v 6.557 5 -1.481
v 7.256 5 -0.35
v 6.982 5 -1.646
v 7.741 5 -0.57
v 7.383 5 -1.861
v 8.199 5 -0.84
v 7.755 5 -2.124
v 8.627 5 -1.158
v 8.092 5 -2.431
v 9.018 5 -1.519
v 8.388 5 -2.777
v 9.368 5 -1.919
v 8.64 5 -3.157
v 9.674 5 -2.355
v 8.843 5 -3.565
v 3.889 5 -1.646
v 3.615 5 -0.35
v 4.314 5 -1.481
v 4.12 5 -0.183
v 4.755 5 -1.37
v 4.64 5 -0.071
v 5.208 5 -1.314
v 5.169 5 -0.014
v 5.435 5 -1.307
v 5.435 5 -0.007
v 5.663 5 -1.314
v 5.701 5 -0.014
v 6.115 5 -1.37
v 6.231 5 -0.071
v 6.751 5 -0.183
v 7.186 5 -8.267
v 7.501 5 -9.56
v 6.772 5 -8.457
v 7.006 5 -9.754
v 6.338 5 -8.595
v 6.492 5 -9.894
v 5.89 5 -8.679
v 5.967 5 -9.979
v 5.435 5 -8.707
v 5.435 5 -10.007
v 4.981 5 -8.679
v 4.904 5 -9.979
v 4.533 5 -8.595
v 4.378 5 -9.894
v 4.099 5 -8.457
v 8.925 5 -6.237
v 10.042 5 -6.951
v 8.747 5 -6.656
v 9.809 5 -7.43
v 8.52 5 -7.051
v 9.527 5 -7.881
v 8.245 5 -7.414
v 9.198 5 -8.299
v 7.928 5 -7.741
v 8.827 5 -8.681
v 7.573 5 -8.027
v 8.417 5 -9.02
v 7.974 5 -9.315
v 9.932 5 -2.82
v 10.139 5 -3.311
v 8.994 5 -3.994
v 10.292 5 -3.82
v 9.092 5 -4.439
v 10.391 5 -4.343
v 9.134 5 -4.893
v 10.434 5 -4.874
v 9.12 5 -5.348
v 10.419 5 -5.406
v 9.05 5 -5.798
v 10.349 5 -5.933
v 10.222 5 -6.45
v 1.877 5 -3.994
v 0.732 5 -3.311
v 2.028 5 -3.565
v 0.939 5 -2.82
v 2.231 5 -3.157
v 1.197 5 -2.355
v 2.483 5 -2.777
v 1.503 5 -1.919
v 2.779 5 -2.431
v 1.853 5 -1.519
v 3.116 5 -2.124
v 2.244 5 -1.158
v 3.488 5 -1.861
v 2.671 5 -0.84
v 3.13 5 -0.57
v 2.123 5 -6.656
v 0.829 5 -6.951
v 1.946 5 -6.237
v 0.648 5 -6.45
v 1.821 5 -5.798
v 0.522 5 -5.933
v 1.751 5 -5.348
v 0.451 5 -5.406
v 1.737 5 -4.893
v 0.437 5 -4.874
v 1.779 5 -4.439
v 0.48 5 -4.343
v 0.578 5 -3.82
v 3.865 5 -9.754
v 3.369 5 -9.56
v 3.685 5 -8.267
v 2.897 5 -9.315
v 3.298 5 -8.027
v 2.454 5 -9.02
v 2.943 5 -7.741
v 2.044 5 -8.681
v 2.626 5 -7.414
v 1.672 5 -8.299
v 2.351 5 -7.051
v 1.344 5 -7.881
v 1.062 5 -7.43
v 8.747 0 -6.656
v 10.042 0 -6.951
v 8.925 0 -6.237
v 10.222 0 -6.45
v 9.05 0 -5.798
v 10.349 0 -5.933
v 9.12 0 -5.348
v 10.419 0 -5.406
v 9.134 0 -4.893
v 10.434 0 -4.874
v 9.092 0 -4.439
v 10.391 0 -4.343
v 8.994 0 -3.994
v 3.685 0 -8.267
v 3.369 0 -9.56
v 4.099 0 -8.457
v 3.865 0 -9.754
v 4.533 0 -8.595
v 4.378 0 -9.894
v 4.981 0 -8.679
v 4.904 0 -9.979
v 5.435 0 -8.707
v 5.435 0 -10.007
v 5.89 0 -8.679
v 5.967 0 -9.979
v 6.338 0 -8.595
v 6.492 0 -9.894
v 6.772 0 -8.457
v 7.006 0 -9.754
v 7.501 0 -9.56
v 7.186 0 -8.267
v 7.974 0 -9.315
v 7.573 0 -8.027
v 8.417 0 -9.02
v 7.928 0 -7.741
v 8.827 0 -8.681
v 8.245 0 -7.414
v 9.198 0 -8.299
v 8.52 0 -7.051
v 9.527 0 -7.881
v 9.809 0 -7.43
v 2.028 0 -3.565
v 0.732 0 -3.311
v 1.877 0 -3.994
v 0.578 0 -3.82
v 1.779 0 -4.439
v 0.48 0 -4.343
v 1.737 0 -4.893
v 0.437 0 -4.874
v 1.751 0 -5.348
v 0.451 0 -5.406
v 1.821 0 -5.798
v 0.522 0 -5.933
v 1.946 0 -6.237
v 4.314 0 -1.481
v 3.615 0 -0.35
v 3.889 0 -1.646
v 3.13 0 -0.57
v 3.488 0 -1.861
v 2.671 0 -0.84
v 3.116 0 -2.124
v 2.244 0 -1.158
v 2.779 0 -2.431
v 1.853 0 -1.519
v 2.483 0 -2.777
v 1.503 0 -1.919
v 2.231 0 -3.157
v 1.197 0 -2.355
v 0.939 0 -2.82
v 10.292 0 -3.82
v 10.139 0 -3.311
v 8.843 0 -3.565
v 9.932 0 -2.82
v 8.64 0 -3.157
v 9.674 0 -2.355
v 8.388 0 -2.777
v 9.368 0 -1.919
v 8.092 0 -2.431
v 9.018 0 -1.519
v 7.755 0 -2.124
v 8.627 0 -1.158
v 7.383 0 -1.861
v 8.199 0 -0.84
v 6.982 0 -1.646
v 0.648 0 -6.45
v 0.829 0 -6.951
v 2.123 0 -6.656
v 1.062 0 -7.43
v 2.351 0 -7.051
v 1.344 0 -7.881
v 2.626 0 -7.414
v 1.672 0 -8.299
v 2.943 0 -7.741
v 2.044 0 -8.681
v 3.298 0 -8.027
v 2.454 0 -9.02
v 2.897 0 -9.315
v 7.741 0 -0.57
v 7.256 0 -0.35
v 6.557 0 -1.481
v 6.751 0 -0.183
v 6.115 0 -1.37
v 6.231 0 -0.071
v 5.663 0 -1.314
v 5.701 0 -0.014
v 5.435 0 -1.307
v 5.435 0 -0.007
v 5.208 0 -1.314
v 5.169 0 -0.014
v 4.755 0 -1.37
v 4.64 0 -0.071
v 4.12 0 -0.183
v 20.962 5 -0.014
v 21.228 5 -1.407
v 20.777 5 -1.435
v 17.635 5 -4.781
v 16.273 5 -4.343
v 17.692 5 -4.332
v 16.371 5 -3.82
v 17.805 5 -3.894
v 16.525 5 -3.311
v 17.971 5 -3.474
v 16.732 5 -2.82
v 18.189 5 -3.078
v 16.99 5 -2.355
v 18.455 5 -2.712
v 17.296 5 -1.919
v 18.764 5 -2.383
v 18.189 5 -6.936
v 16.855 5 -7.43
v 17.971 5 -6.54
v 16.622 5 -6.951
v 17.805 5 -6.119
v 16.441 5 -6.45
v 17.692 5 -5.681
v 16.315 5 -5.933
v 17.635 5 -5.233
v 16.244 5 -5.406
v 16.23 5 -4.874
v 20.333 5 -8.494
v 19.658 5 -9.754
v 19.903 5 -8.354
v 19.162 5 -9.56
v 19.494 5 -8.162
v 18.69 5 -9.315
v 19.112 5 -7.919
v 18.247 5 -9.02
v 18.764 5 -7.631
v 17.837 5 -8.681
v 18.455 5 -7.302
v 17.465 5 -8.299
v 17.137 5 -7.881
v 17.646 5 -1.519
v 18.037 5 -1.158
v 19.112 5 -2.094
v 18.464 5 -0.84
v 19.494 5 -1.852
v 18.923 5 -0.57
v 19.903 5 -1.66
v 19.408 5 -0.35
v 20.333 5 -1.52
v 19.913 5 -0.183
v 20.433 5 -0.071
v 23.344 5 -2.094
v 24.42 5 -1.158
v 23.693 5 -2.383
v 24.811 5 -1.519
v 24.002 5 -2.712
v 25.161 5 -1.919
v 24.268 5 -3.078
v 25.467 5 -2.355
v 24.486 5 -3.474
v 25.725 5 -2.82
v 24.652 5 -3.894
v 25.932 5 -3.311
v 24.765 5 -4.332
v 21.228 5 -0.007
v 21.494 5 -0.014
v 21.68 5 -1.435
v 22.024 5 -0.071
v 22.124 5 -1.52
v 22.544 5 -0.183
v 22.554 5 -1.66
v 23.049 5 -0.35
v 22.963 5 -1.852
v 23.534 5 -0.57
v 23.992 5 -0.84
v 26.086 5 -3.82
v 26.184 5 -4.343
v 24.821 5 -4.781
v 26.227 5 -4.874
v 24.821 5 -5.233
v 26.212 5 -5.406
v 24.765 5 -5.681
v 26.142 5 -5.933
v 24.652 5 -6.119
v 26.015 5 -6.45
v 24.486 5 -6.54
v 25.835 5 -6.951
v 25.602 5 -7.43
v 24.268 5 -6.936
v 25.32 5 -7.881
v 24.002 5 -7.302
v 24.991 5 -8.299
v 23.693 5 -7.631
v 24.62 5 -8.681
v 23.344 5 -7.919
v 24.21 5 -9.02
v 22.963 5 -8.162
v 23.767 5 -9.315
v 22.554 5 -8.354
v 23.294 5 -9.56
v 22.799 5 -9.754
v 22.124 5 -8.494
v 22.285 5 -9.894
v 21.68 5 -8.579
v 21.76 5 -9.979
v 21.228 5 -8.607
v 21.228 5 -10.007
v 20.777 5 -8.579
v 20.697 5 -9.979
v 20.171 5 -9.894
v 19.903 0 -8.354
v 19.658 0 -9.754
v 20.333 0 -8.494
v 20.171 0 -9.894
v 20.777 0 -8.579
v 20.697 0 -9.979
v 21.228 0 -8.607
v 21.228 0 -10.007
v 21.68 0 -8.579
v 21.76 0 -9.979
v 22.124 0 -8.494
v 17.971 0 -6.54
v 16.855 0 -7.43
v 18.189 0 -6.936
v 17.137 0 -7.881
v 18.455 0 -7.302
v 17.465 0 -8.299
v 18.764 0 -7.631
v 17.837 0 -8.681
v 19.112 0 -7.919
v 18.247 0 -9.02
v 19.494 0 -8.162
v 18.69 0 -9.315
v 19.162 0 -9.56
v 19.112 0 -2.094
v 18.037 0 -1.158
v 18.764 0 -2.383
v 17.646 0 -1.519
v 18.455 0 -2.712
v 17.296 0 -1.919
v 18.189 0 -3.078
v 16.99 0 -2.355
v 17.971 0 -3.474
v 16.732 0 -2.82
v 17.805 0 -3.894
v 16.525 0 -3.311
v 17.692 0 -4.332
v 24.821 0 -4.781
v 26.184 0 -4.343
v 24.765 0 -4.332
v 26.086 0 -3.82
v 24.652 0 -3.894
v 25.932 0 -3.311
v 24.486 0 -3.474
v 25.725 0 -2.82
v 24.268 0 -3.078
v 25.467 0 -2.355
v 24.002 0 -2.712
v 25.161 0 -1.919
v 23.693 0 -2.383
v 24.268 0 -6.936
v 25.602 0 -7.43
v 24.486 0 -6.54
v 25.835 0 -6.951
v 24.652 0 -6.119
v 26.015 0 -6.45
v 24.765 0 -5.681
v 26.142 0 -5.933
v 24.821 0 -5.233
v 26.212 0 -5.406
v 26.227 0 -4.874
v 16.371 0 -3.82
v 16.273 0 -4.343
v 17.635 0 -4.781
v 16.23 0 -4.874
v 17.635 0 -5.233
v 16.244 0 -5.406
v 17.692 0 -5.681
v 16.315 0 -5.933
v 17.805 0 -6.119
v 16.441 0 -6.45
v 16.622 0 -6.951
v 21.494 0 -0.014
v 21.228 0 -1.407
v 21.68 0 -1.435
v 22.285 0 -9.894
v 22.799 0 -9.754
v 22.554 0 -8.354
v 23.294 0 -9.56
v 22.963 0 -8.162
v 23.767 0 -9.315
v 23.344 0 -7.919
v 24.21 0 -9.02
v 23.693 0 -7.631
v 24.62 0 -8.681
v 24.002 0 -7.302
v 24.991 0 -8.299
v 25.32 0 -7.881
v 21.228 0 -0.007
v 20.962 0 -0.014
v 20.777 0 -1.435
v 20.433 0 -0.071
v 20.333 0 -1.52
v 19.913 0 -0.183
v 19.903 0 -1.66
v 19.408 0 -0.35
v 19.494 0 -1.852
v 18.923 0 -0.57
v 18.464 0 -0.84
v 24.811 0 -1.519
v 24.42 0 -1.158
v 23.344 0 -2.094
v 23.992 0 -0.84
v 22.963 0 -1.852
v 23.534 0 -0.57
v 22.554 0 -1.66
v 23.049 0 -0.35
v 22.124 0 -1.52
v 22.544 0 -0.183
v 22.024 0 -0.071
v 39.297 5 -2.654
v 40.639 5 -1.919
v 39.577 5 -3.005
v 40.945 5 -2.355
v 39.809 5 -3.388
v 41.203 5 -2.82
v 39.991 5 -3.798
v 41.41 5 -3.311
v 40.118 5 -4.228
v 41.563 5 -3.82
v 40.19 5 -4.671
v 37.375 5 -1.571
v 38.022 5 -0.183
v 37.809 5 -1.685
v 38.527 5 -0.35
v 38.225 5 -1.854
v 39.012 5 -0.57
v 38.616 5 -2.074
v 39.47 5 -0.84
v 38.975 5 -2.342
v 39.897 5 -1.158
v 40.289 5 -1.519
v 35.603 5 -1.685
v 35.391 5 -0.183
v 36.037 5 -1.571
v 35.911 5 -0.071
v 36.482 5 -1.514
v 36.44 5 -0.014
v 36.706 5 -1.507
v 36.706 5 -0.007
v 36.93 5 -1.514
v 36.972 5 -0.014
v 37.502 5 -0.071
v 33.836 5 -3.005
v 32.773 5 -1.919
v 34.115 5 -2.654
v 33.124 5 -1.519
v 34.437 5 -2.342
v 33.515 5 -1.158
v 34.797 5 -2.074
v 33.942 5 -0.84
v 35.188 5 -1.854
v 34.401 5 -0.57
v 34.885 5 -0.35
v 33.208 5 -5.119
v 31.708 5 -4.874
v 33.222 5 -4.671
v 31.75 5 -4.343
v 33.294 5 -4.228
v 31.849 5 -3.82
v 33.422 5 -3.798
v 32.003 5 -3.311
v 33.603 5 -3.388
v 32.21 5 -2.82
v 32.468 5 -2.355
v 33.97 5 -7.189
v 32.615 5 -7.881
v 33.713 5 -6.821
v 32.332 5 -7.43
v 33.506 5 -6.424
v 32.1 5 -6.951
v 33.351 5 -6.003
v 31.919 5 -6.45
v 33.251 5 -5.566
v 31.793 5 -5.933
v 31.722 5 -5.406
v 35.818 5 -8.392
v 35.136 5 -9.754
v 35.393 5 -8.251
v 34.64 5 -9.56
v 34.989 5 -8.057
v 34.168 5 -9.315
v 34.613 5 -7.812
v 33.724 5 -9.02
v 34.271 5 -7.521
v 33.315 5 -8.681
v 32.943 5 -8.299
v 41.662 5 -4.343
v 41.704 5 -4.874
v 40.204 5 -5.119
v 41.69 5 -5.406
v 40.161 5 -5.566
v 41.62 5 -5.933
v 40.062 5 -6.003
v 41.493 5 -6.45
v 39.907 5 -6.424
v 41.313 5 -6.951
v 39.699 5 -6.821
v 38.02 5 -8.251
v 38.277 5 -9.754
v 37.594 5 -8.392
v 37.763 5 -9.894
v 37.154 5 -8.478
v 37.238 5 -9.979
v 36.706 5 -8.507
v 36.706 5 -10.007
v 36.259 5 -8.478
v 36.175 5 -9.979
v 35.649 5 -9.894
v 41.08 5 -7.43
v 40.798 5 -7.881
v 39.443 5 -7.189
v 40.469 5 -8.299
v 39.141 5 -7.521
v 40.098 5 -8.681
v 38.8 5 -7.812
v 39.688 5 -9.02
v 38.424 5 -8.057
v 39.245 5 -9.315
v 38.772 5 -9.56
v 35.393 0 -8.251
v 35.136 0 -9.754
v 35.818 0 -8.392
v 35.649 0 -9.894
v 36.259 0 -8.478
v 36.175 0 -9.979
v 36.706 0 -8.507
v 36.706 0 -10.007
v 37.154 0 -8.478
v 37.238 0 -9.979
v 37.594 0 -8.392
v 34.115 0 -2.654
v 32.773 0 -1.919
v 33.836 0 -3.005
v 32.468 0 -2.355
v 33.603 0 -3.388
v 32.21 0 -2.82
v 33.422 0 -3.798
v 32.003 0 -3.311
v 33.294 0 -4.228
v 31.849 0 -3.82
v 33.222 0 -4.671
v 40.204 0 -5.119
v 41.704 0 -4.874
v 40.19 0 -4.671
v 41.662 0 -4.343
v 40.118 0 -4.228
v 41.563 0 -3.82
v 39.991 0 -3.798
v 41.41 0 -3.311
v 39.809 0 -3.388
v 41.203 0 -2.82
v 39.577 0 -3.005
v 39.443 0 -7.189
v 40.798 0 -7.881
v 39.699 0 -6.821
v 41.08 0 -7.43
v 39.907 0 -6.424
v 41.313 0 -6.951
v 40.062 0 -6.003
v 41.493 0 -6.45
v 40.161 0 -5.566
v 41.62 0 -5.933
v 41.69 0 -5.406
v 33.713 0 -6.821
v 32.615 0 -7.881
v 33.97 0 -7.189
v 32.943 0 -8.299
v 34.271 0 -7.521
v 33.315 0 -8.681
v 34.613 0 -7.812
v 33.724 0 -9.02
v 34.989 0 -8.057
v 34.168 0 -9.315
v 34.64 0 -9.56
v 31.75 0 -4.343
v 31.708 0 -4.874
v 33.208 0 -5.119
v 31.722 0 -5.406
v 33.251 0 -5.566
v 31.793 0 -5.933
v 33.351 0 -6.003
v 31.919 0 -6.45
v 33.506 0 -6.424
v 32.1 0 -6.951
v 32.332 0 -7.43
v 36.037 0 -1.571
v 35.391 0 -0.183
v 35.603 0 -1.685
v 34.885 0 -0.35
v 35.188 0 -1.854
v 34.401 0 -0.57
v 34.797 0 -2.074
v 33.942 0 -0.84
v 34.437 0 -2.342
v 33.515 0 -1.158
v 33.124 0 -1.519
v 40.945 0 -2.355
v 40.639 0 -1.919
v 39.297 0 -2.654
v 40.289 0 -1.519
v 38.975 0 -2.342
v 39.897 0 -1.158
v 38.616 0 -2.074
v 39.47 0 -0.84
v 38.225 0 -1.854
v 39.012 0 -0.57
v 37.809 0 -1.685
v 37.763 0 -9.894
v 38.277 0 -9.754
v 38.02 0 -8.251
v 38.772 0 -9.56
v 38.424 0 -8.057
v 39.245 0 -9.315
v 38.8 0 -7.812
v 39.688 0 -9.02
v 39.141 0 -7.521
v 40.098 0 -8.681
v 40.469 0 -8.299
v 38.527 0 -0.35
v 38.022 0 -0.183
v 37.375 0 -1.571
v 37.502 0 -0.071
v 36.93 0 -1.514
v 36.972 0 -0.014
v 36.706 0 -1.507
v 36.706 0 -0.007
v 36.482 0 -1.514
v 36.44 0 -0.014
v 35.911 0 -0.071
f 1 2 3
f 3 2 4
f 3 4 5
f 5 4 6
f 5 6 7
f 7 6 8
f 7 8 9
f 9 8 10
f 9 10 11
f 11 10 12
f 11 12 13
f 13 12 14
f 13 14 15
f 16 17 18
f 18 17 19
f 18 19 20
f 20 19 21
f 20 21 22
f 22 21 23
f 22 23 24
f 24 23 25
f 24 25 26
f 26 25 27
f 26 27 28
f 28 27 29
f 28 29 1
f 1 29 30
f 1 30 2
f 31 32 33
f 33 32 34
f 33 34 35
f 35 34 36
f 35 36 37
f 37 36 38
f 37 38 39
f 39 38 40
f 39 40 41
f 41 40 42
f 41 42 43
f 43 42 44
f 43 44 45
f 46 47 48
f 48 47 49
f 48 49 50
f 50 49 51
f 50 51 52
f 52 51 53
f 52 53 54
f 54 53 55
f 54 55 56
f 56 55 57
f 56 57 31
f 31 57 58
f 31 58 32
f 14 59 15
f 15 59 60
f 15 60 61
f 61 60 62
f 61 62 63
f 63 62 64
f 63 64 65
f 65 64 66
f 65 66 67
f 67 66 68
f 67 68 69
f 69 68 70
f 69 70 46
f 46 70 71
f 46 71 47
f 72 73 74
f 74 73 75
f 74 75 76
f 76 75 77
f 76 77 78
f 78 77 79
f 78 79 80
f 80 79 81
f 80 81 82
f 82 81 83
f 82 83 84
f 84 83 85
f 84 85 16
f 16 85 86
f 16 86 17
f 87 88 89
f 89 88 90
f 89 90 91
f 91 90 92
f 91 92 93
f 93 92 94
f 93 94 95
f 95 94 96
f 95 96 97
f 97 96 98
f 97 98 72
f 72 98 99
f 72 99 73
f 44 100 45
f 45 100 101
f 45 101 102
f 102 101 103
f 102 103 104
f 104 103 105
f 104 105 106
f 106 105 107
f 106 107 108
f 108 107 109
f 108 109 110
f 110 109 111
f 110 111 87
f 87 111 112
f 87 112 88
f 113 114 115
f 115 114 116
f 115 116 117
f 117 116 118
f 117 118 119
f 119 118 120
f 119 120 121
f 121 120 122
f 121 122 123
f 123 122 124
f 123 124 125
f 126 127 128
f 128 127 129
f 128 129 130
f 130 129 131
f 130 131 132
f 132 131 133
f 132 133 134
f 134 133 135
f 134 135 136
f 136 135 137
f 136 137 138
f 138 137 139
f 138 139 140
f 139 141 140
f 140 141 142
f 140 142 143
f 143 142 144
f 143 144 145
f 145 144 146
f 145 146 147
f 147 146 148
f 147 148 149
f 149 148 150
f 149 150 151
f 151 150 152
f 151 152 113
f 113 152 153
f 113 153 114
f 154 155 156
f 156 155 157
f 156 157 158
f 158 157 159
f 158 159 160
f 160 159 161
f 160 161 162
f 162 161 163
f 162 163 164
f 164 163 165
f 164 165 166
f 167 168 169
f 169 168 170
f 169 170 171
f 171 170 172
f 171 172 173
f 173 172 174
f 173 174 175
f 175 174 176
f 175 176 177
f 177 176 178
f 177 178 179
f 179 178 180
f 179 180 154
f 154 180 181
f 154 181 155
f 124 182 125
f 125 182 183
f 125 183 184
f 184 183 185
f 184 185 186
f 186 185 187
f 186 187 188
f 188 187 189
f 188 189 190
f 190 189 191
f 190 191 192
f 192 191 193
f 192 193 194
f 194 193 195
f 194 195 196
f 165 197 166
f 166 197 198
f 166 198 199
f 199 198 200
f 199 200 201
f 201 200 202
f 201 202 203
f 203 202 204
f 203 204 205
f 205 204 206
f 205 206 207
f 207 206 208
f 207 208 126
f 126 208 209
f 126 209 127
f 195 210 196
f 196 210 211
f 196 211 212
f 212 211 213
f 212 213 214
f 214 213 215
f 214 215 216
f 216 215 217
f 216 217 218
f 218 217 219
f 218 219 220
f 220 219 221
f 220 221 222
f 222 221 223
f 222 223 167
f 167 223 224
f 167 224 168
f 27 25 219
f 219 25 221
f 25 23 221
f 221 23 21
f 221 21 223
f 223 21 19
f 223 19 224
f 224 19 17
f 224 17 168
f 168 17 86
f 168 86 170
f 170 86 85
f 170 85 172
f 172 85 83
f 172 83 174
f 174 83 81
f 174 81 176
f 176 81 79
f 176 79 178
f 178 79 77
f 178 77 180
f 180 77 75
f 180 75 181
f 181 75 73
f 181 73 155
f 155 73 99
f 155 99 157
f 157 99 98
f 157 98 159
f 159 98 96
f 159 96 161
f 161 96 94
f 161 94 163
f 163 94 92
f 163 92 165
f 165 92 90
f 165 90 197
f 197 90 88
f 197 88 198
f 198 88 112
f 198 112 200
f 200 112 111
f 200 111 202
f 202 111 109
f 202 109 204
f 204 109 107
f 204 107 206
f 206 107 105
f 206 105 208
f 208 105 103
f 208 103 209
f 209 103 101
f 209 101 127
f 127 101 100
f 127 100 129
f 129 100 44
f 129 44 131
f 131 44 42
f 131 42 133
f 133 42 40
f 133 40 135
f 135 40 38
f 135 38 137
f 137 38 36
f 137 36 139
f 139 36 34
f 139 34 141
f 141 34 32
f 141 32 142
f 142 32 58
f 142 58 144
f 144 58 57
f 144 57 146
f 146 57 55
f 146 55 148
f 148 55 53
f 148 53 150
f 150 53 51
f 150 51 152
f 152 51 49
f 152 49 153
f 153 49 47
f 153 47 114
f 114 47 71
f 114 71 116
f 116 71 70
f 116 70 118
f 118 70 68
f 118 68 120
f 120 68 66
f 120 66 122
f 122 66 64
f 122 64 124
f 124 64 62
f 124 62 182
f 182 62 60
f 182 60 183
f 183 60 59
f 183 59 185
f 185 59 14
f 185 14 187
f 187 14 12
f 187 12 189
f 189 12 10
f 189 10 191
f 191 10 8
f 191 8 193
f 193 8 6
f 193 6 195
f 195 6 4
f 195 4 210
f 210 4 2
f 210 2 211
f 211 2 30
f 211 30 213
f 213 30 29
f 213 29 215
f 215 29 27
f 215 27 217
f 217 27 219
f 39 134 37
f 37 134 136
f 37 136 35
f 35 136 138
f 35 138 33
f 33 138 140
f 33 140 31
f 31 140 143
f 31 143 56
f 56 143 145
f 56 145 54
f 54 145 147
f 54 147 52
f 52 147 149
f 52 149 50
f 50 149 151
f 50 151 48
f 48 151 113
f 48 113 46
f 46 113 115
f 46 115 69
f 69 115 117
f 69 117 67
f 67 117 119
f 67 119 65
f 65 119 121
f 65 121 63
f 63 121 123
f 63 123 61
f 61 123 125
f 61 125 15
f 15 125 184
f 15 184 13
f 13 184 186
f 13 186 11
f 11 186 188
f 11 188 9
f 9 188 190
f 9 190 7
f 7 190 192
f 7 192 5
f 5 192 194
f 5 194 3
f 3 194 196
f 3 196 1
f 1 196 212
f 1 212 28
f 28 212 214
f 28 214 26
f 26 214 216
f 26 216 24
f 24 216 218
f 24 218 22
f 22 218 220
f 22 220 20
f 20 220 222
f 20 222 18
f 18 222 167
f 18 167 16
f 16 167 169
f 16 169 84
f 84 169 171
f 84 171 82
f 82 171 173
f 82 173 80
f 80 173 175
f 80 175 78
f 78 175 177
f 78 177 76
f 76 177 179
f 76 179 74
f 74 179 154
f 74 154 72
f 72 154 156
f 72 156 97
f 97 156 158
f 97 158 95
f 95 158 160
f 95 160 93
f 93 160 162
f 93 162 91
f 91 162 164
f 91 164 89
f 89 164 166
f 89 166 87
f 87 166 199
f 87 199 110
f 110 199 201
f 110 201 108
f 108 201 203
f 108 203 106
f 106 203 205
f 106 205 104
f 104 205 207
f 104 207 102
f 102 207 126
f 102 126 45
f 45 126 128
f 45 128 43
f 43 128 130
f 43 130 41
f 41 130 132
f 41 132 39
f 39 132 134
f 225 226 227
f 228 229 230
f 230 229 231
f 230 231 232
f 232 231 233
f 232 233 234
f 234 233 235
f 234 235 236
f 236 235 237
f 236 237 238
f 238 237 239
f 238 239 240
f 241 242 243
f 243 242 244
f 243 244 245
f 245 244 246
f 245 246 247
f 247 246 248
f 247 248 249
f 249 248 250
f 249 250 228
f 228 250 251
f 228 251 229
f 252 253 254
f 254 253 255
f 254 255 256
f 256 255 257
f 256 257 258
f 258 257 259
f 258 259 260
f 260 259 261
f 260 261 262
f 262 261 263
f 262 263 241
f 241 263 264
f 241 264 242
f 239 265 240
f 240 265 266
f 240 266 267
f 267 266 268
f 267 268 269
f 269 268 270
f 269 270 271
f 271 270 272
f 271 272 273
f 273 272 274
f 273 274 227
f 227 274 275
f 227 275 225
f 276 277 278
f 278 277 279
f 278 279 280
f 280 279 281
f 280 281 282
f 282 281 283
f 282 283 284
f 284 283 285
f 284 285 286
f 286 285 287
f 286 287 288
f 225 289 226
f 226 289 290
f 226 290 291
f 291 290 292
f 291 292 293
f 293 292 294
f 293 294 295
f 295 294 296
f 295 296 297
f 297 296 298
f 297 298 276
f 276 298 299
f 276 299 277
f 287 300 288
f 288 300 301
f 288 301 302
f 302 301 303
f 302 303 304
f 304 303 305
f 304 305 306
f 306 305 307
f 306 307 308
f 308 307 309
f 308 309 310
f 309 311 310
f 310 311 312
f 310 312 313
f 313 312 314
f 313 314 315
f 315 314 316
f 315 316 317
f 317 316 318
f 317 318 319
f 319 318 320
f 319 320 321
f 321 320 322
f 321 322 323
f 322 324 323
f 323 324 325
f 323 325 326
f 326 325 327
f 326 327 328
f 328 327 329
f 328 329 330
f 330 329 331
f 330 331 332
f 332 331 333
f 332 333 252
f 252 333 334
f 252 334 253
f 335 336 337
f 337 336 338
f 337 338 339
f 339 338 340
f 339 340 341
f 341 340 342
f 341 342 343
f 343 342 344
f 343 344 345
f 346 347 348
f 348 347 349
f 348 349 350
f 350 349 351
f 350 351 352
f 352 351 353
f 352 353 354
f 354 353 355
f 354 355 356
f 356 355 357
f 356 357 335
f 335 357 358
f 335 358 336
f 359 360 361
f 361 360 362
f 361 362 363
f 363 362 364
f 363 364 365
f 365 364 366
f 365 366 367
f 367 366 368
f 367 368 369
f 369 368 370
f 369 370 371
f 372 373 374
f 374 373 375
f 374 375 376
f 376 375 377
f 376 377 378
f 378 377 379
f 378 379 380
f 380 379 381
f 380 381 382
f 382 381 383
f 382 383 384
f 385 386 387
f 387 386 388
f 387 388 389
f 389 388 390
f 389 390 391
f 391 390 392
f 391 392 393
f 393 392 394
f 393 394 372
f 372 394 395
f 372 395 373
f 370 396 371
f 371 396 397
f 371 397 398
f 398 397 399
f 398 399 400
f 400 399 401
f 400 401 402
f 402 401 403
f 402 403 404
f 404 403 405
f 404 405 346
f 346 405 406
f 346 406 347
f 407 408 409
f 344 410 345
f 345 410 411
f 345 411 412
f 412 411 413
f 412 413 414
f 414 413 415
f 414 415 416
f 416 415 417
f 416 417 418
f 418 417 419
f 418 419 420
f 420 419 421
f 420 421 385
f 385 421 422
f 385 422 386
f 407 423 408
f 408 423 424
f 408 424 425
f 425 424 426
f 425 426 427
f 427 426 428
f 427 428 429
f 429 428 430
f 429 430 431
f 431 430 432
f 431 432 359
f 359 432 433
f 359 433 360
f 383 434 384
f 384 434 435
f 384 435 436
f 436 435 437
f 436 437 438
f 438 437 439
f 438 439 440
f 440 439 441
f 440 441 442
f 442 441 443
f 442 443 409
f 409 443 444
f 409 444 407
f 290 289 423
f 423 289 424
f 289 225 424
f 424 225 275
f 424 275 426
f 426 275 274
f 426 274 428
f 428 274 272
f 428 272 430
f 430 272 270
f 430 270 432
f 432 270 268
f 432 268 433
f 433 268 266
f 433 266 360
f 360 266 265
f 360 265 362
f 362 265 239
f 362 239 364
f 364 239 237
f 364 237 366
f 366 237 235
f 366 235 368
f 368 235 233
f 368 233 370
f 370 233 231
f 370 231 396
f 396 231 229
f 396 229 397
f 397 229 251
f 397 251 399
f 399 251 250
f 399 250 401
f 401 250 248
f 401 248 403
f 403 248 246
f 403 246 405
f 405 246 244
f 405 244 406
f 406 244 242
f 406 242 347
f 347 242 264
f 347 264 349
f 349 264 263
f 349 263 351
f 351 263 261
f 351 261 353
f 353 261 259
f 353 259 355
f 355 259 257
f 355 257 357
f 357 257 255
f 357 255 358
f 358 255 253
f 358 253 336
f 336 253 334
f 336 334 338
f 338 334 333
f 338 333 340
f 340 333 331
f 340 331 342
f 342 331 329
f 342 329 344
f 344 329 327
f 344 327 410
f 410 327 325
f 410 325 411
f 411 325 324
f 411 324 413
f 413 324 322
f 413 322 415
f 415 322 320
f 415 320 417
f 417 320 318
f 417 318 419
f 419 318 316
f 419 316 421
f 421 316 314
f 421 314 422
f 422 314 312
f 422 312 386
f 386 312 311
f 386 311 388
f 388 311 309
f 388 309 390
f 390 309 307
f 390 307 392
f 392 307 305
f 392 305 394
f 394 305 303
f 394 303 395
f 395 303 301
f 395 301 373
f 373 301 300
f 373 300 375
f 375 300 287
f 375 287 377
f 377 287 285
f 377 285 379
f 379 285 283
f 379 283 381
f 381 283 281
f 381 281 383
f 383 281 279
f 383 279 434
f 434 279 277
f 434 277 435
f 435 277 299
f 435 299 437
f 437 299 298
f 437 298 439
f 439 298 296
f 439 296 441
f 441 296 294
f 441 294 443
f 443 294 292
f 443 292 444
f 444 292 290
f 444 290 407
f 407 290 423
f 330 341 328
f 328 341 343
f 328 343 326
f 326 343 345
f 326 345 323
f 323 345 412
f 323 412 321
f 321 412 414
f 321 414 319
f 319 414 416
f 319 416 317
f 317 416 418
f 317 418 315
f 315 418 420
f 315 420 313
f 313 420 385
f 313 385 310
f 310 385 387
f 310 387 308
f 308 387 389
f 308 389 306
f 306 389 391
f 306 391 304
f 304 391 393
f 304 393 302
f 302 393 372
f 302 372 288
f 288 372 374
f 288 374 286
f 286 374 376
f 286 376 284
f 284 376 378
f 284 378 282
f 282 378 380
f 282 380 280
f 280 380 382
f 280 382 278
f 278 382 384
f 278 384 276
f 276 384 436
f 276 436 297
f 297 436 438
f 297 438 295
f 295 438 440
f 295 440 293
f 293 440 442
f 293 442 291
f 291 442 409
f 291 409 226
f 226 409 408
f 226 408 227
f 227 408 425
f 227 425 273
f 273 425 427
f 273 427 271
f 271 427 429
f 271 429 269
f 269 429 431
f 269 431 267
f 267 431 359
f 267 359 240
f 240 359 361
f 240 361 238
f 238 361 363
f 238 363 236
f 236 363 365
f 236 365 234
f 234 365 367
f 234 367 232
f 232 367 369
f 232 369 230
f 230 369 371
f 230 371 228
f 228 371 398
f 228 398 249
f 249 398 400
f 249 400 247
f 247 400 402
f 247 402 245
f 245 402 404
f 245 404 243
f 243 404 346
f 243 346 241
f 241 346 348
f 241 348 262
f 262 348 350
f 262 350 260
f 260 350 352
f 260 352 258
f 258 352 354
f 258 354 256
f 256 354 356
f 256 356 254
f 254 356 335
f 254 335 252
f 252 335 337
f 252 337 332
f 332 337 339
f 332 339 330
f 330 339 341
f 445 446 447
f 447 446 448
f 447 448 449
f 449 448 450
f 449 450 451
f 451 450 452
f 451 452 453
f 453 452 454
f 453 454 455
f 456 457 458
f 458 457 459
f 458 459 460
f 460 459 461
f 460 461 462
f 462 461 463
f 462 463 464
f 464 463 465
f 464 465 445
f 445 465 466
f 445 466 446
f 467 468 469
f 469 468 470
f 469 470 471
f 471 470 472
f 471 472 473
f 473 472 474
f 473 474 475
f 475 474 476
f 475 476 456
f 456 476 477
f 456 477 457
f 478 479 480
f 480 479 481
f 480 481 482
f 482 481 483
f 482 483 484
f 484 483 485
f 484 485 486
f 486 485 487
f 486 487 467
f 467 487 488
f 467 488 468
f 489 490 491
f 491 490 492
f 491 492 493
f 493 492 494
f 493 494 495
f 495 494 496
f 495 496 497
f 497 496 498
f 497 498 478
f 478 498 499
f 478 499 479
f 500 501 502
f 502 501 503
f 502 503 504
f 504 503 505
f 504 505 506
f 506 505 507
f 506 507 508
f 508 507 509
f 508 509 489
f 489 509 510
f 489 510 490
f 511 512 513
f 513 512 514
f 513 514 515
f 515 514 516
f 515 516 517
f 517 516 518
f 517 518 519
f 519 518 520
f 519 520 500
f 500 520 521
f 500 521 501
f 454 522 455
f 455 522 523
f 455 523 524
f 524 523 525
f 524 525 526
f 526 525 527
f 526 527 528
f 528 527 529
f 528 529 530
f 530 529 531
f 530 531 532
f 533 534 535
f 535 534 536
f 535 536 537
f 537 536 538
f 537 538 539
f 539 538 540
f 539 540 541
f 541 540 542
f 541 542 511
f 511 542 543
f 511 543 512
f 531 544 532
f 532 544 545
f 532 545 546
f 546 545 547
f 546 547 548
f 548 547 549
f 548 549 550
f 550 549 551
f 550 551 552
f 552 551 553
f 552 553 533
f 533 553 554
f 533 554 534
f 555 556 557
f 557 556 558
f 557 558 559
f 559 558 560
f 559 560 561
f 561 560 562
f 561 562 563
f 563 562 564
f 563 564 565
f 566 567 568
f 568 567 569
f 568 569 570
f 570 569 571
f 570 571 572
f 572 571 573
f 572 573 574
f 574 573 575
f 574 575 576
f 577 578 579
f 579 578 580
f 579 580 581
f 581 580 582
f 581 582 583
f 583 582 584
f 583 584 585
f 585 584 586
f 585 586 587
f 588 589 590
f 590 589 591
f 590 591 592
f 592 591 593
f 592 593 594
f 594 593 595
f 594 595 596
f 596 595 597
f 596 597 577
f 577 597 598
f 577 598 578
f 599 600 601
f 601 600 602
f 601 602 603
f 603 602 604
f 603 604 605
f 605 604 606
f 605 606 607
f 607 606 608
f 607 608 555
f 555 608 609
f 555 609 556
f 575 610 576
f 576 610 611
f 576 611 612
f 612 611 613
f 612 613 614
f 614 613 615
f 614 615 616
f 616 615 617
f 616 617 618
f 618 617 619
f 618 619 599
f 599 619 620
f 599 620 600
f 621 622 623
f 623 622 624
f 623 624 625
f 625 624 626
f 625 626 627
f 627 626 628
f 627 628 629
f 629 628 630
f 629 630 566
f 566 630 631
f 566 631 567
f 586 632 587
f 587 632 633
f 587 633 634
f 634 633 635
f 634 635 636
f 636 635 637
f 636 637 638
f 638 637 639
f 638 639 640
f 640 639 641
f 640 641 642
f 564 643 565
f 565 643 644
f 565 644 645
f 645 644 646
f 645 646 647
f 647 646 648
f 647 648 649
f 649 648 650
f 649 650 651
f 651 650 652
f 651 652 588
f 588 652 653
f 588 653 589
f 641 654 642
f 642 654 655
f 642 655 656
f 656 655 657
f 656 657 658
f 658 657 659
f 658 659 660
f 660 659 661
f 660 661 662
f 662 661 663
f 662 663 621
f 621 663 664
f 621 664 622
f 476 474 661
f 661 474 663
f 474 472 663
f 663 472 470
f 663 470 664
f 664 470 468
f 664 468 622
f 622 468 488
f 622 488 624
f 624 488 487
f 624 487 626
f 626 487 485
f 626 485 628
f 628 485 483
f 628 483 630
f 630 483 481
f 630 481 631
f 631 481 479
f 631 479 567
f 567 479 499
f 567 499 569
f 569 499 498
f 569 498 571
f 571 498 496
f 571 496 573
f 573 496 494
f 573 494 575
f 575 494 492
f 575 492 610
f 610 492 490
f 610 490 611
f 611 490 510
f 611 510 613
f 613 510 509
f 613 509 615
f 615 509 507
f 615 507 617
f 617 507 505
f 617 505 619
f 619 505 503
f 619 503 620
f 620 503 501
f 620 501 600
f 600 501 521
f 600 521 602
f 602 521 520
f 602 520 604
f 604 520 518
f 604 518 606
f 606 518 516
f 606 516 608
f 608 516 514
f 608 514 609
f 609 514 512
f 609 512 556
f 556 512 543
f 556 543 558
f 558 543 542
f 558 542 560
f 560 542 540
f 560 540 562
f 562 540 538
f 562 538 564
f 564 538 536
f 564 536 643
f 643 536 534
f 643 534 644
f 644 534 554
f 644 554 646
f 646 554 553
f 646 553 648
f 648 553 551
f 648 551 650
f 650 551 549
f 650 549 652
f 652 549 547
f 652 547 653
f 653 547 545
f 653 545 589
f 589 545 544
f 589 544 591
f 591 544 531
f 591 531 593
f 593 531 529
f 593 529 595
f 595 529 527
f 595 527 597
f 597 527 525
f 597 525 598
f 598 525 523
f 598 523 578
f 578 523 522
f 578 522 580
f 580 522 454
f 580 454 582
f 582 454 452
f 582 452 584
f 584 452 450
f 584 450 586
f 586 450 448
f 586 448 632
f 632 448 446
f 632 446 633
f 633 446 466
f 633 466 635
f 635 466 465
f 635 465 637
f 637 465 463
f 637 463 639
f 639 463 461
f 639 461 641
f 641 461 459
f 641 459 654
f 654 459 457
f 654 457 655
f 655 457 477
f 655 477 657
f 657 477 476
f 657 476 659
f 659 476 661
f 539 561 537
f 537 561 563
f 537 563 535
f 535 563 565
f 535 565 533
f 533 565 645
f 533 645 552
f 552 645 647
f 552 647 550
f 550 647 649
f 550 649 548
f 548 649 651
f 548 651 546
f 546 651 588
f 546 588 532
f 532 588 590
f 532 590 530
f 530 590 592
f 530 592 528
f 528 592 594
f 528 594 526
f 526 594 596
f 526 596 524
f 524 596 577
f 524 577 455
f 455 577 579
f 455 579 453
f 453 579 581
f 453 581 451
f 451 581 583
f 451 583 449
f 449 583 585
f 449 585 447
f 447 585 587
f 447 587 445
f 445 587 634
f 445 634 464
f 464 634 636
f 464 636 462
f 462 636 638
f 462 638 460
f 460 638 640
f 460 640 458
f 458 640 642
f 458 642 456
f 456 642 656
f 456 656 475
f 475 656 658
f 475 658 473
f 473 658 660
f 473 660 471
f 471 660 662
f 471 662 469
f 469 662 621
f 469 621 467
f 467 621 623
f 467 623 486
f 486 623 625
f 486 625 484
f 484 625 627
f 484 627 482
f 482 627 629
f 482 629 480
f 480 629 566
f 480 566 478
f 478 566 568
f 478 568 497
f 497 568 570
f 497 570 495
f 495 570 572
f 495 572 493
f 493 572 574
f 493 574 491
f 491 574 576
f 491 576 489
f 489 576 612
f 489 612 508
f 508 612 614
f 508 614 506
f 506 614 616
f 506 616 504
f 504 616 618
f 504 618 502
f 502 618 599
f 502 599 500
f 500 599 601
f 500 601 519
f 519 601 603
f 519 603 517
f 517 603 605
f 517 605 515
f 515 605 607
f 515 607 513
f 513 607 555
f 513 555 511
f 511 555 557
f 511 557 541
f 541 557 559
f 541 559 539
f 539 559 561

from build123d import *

# Parameters (mm, degrees)
SKETCH_1_R        = 5
SKETCH_1_R_2      = 3.7
EXTRUDE_1_DEPTH   = 5
SKETCH_1_R_3      = 3.6
EXTRUDE_1_2_DEPTH = 5
SKETCH_1_R_4      = 3.5
EXTRUDE_1_3_DEPTH = 5


with BuildPart() as part:
    # 草图1 → 凸台-拉伸1 (new body)
    with BuildSketch(Plane(origin=(0, 0, 0), x_dir=(1, 0, 0), z_dir=(0, 1, 0))):
        with Locations((5.437119386, 5.006908435)):
            Circle(SKETCH_1_R)
        with Locations((5.437119386, 5.006908435)):
            Circle(SKETCH_1_R_2, mode=Mode.SUBTRACT)
    extrude(amount=EXTRUDE_1_DEPTH)


with BuildPart() as body_2:
    # 草图1 → Extrude 1 2 (new body)
    with BuildSketch(Plane(origin=(0, 0, 0), x_dir=(1, 0, 0), z_dir=(0, 1, 0))):
        with Locations((21.230124471, 5.006908435)):
            Circle(SKETCH_1_R)
        with Locations((21.230124471, 5.006908435)):
            Circle(SKETCH_1_R_3, mode=Mode.SUBTRACT)
    extrude(amount=EXTRUDE_1_2_DEPTH)


with BuildPart() as body_3:
    # 草图1 → Extrude 1 3 (new body)
    with BuildSketch(Plane(origin=(0, 0, 0), x_dir=(1, 0, 0), z_dir=(0, 1, 0))):
        with Locations((36.708022169, 5.006908435)):
            Circle(SKETCH_1_R)
        with Locations((36.708022169, 5.006908435)):
            Circle(SKETCH_1_R_4, mode=Mode.SUBTRACT)
    extrude(amount=EXTRUDE_1_3_DEPTH)


solid = Compound([part.part, body_2.part, body_3.part])
